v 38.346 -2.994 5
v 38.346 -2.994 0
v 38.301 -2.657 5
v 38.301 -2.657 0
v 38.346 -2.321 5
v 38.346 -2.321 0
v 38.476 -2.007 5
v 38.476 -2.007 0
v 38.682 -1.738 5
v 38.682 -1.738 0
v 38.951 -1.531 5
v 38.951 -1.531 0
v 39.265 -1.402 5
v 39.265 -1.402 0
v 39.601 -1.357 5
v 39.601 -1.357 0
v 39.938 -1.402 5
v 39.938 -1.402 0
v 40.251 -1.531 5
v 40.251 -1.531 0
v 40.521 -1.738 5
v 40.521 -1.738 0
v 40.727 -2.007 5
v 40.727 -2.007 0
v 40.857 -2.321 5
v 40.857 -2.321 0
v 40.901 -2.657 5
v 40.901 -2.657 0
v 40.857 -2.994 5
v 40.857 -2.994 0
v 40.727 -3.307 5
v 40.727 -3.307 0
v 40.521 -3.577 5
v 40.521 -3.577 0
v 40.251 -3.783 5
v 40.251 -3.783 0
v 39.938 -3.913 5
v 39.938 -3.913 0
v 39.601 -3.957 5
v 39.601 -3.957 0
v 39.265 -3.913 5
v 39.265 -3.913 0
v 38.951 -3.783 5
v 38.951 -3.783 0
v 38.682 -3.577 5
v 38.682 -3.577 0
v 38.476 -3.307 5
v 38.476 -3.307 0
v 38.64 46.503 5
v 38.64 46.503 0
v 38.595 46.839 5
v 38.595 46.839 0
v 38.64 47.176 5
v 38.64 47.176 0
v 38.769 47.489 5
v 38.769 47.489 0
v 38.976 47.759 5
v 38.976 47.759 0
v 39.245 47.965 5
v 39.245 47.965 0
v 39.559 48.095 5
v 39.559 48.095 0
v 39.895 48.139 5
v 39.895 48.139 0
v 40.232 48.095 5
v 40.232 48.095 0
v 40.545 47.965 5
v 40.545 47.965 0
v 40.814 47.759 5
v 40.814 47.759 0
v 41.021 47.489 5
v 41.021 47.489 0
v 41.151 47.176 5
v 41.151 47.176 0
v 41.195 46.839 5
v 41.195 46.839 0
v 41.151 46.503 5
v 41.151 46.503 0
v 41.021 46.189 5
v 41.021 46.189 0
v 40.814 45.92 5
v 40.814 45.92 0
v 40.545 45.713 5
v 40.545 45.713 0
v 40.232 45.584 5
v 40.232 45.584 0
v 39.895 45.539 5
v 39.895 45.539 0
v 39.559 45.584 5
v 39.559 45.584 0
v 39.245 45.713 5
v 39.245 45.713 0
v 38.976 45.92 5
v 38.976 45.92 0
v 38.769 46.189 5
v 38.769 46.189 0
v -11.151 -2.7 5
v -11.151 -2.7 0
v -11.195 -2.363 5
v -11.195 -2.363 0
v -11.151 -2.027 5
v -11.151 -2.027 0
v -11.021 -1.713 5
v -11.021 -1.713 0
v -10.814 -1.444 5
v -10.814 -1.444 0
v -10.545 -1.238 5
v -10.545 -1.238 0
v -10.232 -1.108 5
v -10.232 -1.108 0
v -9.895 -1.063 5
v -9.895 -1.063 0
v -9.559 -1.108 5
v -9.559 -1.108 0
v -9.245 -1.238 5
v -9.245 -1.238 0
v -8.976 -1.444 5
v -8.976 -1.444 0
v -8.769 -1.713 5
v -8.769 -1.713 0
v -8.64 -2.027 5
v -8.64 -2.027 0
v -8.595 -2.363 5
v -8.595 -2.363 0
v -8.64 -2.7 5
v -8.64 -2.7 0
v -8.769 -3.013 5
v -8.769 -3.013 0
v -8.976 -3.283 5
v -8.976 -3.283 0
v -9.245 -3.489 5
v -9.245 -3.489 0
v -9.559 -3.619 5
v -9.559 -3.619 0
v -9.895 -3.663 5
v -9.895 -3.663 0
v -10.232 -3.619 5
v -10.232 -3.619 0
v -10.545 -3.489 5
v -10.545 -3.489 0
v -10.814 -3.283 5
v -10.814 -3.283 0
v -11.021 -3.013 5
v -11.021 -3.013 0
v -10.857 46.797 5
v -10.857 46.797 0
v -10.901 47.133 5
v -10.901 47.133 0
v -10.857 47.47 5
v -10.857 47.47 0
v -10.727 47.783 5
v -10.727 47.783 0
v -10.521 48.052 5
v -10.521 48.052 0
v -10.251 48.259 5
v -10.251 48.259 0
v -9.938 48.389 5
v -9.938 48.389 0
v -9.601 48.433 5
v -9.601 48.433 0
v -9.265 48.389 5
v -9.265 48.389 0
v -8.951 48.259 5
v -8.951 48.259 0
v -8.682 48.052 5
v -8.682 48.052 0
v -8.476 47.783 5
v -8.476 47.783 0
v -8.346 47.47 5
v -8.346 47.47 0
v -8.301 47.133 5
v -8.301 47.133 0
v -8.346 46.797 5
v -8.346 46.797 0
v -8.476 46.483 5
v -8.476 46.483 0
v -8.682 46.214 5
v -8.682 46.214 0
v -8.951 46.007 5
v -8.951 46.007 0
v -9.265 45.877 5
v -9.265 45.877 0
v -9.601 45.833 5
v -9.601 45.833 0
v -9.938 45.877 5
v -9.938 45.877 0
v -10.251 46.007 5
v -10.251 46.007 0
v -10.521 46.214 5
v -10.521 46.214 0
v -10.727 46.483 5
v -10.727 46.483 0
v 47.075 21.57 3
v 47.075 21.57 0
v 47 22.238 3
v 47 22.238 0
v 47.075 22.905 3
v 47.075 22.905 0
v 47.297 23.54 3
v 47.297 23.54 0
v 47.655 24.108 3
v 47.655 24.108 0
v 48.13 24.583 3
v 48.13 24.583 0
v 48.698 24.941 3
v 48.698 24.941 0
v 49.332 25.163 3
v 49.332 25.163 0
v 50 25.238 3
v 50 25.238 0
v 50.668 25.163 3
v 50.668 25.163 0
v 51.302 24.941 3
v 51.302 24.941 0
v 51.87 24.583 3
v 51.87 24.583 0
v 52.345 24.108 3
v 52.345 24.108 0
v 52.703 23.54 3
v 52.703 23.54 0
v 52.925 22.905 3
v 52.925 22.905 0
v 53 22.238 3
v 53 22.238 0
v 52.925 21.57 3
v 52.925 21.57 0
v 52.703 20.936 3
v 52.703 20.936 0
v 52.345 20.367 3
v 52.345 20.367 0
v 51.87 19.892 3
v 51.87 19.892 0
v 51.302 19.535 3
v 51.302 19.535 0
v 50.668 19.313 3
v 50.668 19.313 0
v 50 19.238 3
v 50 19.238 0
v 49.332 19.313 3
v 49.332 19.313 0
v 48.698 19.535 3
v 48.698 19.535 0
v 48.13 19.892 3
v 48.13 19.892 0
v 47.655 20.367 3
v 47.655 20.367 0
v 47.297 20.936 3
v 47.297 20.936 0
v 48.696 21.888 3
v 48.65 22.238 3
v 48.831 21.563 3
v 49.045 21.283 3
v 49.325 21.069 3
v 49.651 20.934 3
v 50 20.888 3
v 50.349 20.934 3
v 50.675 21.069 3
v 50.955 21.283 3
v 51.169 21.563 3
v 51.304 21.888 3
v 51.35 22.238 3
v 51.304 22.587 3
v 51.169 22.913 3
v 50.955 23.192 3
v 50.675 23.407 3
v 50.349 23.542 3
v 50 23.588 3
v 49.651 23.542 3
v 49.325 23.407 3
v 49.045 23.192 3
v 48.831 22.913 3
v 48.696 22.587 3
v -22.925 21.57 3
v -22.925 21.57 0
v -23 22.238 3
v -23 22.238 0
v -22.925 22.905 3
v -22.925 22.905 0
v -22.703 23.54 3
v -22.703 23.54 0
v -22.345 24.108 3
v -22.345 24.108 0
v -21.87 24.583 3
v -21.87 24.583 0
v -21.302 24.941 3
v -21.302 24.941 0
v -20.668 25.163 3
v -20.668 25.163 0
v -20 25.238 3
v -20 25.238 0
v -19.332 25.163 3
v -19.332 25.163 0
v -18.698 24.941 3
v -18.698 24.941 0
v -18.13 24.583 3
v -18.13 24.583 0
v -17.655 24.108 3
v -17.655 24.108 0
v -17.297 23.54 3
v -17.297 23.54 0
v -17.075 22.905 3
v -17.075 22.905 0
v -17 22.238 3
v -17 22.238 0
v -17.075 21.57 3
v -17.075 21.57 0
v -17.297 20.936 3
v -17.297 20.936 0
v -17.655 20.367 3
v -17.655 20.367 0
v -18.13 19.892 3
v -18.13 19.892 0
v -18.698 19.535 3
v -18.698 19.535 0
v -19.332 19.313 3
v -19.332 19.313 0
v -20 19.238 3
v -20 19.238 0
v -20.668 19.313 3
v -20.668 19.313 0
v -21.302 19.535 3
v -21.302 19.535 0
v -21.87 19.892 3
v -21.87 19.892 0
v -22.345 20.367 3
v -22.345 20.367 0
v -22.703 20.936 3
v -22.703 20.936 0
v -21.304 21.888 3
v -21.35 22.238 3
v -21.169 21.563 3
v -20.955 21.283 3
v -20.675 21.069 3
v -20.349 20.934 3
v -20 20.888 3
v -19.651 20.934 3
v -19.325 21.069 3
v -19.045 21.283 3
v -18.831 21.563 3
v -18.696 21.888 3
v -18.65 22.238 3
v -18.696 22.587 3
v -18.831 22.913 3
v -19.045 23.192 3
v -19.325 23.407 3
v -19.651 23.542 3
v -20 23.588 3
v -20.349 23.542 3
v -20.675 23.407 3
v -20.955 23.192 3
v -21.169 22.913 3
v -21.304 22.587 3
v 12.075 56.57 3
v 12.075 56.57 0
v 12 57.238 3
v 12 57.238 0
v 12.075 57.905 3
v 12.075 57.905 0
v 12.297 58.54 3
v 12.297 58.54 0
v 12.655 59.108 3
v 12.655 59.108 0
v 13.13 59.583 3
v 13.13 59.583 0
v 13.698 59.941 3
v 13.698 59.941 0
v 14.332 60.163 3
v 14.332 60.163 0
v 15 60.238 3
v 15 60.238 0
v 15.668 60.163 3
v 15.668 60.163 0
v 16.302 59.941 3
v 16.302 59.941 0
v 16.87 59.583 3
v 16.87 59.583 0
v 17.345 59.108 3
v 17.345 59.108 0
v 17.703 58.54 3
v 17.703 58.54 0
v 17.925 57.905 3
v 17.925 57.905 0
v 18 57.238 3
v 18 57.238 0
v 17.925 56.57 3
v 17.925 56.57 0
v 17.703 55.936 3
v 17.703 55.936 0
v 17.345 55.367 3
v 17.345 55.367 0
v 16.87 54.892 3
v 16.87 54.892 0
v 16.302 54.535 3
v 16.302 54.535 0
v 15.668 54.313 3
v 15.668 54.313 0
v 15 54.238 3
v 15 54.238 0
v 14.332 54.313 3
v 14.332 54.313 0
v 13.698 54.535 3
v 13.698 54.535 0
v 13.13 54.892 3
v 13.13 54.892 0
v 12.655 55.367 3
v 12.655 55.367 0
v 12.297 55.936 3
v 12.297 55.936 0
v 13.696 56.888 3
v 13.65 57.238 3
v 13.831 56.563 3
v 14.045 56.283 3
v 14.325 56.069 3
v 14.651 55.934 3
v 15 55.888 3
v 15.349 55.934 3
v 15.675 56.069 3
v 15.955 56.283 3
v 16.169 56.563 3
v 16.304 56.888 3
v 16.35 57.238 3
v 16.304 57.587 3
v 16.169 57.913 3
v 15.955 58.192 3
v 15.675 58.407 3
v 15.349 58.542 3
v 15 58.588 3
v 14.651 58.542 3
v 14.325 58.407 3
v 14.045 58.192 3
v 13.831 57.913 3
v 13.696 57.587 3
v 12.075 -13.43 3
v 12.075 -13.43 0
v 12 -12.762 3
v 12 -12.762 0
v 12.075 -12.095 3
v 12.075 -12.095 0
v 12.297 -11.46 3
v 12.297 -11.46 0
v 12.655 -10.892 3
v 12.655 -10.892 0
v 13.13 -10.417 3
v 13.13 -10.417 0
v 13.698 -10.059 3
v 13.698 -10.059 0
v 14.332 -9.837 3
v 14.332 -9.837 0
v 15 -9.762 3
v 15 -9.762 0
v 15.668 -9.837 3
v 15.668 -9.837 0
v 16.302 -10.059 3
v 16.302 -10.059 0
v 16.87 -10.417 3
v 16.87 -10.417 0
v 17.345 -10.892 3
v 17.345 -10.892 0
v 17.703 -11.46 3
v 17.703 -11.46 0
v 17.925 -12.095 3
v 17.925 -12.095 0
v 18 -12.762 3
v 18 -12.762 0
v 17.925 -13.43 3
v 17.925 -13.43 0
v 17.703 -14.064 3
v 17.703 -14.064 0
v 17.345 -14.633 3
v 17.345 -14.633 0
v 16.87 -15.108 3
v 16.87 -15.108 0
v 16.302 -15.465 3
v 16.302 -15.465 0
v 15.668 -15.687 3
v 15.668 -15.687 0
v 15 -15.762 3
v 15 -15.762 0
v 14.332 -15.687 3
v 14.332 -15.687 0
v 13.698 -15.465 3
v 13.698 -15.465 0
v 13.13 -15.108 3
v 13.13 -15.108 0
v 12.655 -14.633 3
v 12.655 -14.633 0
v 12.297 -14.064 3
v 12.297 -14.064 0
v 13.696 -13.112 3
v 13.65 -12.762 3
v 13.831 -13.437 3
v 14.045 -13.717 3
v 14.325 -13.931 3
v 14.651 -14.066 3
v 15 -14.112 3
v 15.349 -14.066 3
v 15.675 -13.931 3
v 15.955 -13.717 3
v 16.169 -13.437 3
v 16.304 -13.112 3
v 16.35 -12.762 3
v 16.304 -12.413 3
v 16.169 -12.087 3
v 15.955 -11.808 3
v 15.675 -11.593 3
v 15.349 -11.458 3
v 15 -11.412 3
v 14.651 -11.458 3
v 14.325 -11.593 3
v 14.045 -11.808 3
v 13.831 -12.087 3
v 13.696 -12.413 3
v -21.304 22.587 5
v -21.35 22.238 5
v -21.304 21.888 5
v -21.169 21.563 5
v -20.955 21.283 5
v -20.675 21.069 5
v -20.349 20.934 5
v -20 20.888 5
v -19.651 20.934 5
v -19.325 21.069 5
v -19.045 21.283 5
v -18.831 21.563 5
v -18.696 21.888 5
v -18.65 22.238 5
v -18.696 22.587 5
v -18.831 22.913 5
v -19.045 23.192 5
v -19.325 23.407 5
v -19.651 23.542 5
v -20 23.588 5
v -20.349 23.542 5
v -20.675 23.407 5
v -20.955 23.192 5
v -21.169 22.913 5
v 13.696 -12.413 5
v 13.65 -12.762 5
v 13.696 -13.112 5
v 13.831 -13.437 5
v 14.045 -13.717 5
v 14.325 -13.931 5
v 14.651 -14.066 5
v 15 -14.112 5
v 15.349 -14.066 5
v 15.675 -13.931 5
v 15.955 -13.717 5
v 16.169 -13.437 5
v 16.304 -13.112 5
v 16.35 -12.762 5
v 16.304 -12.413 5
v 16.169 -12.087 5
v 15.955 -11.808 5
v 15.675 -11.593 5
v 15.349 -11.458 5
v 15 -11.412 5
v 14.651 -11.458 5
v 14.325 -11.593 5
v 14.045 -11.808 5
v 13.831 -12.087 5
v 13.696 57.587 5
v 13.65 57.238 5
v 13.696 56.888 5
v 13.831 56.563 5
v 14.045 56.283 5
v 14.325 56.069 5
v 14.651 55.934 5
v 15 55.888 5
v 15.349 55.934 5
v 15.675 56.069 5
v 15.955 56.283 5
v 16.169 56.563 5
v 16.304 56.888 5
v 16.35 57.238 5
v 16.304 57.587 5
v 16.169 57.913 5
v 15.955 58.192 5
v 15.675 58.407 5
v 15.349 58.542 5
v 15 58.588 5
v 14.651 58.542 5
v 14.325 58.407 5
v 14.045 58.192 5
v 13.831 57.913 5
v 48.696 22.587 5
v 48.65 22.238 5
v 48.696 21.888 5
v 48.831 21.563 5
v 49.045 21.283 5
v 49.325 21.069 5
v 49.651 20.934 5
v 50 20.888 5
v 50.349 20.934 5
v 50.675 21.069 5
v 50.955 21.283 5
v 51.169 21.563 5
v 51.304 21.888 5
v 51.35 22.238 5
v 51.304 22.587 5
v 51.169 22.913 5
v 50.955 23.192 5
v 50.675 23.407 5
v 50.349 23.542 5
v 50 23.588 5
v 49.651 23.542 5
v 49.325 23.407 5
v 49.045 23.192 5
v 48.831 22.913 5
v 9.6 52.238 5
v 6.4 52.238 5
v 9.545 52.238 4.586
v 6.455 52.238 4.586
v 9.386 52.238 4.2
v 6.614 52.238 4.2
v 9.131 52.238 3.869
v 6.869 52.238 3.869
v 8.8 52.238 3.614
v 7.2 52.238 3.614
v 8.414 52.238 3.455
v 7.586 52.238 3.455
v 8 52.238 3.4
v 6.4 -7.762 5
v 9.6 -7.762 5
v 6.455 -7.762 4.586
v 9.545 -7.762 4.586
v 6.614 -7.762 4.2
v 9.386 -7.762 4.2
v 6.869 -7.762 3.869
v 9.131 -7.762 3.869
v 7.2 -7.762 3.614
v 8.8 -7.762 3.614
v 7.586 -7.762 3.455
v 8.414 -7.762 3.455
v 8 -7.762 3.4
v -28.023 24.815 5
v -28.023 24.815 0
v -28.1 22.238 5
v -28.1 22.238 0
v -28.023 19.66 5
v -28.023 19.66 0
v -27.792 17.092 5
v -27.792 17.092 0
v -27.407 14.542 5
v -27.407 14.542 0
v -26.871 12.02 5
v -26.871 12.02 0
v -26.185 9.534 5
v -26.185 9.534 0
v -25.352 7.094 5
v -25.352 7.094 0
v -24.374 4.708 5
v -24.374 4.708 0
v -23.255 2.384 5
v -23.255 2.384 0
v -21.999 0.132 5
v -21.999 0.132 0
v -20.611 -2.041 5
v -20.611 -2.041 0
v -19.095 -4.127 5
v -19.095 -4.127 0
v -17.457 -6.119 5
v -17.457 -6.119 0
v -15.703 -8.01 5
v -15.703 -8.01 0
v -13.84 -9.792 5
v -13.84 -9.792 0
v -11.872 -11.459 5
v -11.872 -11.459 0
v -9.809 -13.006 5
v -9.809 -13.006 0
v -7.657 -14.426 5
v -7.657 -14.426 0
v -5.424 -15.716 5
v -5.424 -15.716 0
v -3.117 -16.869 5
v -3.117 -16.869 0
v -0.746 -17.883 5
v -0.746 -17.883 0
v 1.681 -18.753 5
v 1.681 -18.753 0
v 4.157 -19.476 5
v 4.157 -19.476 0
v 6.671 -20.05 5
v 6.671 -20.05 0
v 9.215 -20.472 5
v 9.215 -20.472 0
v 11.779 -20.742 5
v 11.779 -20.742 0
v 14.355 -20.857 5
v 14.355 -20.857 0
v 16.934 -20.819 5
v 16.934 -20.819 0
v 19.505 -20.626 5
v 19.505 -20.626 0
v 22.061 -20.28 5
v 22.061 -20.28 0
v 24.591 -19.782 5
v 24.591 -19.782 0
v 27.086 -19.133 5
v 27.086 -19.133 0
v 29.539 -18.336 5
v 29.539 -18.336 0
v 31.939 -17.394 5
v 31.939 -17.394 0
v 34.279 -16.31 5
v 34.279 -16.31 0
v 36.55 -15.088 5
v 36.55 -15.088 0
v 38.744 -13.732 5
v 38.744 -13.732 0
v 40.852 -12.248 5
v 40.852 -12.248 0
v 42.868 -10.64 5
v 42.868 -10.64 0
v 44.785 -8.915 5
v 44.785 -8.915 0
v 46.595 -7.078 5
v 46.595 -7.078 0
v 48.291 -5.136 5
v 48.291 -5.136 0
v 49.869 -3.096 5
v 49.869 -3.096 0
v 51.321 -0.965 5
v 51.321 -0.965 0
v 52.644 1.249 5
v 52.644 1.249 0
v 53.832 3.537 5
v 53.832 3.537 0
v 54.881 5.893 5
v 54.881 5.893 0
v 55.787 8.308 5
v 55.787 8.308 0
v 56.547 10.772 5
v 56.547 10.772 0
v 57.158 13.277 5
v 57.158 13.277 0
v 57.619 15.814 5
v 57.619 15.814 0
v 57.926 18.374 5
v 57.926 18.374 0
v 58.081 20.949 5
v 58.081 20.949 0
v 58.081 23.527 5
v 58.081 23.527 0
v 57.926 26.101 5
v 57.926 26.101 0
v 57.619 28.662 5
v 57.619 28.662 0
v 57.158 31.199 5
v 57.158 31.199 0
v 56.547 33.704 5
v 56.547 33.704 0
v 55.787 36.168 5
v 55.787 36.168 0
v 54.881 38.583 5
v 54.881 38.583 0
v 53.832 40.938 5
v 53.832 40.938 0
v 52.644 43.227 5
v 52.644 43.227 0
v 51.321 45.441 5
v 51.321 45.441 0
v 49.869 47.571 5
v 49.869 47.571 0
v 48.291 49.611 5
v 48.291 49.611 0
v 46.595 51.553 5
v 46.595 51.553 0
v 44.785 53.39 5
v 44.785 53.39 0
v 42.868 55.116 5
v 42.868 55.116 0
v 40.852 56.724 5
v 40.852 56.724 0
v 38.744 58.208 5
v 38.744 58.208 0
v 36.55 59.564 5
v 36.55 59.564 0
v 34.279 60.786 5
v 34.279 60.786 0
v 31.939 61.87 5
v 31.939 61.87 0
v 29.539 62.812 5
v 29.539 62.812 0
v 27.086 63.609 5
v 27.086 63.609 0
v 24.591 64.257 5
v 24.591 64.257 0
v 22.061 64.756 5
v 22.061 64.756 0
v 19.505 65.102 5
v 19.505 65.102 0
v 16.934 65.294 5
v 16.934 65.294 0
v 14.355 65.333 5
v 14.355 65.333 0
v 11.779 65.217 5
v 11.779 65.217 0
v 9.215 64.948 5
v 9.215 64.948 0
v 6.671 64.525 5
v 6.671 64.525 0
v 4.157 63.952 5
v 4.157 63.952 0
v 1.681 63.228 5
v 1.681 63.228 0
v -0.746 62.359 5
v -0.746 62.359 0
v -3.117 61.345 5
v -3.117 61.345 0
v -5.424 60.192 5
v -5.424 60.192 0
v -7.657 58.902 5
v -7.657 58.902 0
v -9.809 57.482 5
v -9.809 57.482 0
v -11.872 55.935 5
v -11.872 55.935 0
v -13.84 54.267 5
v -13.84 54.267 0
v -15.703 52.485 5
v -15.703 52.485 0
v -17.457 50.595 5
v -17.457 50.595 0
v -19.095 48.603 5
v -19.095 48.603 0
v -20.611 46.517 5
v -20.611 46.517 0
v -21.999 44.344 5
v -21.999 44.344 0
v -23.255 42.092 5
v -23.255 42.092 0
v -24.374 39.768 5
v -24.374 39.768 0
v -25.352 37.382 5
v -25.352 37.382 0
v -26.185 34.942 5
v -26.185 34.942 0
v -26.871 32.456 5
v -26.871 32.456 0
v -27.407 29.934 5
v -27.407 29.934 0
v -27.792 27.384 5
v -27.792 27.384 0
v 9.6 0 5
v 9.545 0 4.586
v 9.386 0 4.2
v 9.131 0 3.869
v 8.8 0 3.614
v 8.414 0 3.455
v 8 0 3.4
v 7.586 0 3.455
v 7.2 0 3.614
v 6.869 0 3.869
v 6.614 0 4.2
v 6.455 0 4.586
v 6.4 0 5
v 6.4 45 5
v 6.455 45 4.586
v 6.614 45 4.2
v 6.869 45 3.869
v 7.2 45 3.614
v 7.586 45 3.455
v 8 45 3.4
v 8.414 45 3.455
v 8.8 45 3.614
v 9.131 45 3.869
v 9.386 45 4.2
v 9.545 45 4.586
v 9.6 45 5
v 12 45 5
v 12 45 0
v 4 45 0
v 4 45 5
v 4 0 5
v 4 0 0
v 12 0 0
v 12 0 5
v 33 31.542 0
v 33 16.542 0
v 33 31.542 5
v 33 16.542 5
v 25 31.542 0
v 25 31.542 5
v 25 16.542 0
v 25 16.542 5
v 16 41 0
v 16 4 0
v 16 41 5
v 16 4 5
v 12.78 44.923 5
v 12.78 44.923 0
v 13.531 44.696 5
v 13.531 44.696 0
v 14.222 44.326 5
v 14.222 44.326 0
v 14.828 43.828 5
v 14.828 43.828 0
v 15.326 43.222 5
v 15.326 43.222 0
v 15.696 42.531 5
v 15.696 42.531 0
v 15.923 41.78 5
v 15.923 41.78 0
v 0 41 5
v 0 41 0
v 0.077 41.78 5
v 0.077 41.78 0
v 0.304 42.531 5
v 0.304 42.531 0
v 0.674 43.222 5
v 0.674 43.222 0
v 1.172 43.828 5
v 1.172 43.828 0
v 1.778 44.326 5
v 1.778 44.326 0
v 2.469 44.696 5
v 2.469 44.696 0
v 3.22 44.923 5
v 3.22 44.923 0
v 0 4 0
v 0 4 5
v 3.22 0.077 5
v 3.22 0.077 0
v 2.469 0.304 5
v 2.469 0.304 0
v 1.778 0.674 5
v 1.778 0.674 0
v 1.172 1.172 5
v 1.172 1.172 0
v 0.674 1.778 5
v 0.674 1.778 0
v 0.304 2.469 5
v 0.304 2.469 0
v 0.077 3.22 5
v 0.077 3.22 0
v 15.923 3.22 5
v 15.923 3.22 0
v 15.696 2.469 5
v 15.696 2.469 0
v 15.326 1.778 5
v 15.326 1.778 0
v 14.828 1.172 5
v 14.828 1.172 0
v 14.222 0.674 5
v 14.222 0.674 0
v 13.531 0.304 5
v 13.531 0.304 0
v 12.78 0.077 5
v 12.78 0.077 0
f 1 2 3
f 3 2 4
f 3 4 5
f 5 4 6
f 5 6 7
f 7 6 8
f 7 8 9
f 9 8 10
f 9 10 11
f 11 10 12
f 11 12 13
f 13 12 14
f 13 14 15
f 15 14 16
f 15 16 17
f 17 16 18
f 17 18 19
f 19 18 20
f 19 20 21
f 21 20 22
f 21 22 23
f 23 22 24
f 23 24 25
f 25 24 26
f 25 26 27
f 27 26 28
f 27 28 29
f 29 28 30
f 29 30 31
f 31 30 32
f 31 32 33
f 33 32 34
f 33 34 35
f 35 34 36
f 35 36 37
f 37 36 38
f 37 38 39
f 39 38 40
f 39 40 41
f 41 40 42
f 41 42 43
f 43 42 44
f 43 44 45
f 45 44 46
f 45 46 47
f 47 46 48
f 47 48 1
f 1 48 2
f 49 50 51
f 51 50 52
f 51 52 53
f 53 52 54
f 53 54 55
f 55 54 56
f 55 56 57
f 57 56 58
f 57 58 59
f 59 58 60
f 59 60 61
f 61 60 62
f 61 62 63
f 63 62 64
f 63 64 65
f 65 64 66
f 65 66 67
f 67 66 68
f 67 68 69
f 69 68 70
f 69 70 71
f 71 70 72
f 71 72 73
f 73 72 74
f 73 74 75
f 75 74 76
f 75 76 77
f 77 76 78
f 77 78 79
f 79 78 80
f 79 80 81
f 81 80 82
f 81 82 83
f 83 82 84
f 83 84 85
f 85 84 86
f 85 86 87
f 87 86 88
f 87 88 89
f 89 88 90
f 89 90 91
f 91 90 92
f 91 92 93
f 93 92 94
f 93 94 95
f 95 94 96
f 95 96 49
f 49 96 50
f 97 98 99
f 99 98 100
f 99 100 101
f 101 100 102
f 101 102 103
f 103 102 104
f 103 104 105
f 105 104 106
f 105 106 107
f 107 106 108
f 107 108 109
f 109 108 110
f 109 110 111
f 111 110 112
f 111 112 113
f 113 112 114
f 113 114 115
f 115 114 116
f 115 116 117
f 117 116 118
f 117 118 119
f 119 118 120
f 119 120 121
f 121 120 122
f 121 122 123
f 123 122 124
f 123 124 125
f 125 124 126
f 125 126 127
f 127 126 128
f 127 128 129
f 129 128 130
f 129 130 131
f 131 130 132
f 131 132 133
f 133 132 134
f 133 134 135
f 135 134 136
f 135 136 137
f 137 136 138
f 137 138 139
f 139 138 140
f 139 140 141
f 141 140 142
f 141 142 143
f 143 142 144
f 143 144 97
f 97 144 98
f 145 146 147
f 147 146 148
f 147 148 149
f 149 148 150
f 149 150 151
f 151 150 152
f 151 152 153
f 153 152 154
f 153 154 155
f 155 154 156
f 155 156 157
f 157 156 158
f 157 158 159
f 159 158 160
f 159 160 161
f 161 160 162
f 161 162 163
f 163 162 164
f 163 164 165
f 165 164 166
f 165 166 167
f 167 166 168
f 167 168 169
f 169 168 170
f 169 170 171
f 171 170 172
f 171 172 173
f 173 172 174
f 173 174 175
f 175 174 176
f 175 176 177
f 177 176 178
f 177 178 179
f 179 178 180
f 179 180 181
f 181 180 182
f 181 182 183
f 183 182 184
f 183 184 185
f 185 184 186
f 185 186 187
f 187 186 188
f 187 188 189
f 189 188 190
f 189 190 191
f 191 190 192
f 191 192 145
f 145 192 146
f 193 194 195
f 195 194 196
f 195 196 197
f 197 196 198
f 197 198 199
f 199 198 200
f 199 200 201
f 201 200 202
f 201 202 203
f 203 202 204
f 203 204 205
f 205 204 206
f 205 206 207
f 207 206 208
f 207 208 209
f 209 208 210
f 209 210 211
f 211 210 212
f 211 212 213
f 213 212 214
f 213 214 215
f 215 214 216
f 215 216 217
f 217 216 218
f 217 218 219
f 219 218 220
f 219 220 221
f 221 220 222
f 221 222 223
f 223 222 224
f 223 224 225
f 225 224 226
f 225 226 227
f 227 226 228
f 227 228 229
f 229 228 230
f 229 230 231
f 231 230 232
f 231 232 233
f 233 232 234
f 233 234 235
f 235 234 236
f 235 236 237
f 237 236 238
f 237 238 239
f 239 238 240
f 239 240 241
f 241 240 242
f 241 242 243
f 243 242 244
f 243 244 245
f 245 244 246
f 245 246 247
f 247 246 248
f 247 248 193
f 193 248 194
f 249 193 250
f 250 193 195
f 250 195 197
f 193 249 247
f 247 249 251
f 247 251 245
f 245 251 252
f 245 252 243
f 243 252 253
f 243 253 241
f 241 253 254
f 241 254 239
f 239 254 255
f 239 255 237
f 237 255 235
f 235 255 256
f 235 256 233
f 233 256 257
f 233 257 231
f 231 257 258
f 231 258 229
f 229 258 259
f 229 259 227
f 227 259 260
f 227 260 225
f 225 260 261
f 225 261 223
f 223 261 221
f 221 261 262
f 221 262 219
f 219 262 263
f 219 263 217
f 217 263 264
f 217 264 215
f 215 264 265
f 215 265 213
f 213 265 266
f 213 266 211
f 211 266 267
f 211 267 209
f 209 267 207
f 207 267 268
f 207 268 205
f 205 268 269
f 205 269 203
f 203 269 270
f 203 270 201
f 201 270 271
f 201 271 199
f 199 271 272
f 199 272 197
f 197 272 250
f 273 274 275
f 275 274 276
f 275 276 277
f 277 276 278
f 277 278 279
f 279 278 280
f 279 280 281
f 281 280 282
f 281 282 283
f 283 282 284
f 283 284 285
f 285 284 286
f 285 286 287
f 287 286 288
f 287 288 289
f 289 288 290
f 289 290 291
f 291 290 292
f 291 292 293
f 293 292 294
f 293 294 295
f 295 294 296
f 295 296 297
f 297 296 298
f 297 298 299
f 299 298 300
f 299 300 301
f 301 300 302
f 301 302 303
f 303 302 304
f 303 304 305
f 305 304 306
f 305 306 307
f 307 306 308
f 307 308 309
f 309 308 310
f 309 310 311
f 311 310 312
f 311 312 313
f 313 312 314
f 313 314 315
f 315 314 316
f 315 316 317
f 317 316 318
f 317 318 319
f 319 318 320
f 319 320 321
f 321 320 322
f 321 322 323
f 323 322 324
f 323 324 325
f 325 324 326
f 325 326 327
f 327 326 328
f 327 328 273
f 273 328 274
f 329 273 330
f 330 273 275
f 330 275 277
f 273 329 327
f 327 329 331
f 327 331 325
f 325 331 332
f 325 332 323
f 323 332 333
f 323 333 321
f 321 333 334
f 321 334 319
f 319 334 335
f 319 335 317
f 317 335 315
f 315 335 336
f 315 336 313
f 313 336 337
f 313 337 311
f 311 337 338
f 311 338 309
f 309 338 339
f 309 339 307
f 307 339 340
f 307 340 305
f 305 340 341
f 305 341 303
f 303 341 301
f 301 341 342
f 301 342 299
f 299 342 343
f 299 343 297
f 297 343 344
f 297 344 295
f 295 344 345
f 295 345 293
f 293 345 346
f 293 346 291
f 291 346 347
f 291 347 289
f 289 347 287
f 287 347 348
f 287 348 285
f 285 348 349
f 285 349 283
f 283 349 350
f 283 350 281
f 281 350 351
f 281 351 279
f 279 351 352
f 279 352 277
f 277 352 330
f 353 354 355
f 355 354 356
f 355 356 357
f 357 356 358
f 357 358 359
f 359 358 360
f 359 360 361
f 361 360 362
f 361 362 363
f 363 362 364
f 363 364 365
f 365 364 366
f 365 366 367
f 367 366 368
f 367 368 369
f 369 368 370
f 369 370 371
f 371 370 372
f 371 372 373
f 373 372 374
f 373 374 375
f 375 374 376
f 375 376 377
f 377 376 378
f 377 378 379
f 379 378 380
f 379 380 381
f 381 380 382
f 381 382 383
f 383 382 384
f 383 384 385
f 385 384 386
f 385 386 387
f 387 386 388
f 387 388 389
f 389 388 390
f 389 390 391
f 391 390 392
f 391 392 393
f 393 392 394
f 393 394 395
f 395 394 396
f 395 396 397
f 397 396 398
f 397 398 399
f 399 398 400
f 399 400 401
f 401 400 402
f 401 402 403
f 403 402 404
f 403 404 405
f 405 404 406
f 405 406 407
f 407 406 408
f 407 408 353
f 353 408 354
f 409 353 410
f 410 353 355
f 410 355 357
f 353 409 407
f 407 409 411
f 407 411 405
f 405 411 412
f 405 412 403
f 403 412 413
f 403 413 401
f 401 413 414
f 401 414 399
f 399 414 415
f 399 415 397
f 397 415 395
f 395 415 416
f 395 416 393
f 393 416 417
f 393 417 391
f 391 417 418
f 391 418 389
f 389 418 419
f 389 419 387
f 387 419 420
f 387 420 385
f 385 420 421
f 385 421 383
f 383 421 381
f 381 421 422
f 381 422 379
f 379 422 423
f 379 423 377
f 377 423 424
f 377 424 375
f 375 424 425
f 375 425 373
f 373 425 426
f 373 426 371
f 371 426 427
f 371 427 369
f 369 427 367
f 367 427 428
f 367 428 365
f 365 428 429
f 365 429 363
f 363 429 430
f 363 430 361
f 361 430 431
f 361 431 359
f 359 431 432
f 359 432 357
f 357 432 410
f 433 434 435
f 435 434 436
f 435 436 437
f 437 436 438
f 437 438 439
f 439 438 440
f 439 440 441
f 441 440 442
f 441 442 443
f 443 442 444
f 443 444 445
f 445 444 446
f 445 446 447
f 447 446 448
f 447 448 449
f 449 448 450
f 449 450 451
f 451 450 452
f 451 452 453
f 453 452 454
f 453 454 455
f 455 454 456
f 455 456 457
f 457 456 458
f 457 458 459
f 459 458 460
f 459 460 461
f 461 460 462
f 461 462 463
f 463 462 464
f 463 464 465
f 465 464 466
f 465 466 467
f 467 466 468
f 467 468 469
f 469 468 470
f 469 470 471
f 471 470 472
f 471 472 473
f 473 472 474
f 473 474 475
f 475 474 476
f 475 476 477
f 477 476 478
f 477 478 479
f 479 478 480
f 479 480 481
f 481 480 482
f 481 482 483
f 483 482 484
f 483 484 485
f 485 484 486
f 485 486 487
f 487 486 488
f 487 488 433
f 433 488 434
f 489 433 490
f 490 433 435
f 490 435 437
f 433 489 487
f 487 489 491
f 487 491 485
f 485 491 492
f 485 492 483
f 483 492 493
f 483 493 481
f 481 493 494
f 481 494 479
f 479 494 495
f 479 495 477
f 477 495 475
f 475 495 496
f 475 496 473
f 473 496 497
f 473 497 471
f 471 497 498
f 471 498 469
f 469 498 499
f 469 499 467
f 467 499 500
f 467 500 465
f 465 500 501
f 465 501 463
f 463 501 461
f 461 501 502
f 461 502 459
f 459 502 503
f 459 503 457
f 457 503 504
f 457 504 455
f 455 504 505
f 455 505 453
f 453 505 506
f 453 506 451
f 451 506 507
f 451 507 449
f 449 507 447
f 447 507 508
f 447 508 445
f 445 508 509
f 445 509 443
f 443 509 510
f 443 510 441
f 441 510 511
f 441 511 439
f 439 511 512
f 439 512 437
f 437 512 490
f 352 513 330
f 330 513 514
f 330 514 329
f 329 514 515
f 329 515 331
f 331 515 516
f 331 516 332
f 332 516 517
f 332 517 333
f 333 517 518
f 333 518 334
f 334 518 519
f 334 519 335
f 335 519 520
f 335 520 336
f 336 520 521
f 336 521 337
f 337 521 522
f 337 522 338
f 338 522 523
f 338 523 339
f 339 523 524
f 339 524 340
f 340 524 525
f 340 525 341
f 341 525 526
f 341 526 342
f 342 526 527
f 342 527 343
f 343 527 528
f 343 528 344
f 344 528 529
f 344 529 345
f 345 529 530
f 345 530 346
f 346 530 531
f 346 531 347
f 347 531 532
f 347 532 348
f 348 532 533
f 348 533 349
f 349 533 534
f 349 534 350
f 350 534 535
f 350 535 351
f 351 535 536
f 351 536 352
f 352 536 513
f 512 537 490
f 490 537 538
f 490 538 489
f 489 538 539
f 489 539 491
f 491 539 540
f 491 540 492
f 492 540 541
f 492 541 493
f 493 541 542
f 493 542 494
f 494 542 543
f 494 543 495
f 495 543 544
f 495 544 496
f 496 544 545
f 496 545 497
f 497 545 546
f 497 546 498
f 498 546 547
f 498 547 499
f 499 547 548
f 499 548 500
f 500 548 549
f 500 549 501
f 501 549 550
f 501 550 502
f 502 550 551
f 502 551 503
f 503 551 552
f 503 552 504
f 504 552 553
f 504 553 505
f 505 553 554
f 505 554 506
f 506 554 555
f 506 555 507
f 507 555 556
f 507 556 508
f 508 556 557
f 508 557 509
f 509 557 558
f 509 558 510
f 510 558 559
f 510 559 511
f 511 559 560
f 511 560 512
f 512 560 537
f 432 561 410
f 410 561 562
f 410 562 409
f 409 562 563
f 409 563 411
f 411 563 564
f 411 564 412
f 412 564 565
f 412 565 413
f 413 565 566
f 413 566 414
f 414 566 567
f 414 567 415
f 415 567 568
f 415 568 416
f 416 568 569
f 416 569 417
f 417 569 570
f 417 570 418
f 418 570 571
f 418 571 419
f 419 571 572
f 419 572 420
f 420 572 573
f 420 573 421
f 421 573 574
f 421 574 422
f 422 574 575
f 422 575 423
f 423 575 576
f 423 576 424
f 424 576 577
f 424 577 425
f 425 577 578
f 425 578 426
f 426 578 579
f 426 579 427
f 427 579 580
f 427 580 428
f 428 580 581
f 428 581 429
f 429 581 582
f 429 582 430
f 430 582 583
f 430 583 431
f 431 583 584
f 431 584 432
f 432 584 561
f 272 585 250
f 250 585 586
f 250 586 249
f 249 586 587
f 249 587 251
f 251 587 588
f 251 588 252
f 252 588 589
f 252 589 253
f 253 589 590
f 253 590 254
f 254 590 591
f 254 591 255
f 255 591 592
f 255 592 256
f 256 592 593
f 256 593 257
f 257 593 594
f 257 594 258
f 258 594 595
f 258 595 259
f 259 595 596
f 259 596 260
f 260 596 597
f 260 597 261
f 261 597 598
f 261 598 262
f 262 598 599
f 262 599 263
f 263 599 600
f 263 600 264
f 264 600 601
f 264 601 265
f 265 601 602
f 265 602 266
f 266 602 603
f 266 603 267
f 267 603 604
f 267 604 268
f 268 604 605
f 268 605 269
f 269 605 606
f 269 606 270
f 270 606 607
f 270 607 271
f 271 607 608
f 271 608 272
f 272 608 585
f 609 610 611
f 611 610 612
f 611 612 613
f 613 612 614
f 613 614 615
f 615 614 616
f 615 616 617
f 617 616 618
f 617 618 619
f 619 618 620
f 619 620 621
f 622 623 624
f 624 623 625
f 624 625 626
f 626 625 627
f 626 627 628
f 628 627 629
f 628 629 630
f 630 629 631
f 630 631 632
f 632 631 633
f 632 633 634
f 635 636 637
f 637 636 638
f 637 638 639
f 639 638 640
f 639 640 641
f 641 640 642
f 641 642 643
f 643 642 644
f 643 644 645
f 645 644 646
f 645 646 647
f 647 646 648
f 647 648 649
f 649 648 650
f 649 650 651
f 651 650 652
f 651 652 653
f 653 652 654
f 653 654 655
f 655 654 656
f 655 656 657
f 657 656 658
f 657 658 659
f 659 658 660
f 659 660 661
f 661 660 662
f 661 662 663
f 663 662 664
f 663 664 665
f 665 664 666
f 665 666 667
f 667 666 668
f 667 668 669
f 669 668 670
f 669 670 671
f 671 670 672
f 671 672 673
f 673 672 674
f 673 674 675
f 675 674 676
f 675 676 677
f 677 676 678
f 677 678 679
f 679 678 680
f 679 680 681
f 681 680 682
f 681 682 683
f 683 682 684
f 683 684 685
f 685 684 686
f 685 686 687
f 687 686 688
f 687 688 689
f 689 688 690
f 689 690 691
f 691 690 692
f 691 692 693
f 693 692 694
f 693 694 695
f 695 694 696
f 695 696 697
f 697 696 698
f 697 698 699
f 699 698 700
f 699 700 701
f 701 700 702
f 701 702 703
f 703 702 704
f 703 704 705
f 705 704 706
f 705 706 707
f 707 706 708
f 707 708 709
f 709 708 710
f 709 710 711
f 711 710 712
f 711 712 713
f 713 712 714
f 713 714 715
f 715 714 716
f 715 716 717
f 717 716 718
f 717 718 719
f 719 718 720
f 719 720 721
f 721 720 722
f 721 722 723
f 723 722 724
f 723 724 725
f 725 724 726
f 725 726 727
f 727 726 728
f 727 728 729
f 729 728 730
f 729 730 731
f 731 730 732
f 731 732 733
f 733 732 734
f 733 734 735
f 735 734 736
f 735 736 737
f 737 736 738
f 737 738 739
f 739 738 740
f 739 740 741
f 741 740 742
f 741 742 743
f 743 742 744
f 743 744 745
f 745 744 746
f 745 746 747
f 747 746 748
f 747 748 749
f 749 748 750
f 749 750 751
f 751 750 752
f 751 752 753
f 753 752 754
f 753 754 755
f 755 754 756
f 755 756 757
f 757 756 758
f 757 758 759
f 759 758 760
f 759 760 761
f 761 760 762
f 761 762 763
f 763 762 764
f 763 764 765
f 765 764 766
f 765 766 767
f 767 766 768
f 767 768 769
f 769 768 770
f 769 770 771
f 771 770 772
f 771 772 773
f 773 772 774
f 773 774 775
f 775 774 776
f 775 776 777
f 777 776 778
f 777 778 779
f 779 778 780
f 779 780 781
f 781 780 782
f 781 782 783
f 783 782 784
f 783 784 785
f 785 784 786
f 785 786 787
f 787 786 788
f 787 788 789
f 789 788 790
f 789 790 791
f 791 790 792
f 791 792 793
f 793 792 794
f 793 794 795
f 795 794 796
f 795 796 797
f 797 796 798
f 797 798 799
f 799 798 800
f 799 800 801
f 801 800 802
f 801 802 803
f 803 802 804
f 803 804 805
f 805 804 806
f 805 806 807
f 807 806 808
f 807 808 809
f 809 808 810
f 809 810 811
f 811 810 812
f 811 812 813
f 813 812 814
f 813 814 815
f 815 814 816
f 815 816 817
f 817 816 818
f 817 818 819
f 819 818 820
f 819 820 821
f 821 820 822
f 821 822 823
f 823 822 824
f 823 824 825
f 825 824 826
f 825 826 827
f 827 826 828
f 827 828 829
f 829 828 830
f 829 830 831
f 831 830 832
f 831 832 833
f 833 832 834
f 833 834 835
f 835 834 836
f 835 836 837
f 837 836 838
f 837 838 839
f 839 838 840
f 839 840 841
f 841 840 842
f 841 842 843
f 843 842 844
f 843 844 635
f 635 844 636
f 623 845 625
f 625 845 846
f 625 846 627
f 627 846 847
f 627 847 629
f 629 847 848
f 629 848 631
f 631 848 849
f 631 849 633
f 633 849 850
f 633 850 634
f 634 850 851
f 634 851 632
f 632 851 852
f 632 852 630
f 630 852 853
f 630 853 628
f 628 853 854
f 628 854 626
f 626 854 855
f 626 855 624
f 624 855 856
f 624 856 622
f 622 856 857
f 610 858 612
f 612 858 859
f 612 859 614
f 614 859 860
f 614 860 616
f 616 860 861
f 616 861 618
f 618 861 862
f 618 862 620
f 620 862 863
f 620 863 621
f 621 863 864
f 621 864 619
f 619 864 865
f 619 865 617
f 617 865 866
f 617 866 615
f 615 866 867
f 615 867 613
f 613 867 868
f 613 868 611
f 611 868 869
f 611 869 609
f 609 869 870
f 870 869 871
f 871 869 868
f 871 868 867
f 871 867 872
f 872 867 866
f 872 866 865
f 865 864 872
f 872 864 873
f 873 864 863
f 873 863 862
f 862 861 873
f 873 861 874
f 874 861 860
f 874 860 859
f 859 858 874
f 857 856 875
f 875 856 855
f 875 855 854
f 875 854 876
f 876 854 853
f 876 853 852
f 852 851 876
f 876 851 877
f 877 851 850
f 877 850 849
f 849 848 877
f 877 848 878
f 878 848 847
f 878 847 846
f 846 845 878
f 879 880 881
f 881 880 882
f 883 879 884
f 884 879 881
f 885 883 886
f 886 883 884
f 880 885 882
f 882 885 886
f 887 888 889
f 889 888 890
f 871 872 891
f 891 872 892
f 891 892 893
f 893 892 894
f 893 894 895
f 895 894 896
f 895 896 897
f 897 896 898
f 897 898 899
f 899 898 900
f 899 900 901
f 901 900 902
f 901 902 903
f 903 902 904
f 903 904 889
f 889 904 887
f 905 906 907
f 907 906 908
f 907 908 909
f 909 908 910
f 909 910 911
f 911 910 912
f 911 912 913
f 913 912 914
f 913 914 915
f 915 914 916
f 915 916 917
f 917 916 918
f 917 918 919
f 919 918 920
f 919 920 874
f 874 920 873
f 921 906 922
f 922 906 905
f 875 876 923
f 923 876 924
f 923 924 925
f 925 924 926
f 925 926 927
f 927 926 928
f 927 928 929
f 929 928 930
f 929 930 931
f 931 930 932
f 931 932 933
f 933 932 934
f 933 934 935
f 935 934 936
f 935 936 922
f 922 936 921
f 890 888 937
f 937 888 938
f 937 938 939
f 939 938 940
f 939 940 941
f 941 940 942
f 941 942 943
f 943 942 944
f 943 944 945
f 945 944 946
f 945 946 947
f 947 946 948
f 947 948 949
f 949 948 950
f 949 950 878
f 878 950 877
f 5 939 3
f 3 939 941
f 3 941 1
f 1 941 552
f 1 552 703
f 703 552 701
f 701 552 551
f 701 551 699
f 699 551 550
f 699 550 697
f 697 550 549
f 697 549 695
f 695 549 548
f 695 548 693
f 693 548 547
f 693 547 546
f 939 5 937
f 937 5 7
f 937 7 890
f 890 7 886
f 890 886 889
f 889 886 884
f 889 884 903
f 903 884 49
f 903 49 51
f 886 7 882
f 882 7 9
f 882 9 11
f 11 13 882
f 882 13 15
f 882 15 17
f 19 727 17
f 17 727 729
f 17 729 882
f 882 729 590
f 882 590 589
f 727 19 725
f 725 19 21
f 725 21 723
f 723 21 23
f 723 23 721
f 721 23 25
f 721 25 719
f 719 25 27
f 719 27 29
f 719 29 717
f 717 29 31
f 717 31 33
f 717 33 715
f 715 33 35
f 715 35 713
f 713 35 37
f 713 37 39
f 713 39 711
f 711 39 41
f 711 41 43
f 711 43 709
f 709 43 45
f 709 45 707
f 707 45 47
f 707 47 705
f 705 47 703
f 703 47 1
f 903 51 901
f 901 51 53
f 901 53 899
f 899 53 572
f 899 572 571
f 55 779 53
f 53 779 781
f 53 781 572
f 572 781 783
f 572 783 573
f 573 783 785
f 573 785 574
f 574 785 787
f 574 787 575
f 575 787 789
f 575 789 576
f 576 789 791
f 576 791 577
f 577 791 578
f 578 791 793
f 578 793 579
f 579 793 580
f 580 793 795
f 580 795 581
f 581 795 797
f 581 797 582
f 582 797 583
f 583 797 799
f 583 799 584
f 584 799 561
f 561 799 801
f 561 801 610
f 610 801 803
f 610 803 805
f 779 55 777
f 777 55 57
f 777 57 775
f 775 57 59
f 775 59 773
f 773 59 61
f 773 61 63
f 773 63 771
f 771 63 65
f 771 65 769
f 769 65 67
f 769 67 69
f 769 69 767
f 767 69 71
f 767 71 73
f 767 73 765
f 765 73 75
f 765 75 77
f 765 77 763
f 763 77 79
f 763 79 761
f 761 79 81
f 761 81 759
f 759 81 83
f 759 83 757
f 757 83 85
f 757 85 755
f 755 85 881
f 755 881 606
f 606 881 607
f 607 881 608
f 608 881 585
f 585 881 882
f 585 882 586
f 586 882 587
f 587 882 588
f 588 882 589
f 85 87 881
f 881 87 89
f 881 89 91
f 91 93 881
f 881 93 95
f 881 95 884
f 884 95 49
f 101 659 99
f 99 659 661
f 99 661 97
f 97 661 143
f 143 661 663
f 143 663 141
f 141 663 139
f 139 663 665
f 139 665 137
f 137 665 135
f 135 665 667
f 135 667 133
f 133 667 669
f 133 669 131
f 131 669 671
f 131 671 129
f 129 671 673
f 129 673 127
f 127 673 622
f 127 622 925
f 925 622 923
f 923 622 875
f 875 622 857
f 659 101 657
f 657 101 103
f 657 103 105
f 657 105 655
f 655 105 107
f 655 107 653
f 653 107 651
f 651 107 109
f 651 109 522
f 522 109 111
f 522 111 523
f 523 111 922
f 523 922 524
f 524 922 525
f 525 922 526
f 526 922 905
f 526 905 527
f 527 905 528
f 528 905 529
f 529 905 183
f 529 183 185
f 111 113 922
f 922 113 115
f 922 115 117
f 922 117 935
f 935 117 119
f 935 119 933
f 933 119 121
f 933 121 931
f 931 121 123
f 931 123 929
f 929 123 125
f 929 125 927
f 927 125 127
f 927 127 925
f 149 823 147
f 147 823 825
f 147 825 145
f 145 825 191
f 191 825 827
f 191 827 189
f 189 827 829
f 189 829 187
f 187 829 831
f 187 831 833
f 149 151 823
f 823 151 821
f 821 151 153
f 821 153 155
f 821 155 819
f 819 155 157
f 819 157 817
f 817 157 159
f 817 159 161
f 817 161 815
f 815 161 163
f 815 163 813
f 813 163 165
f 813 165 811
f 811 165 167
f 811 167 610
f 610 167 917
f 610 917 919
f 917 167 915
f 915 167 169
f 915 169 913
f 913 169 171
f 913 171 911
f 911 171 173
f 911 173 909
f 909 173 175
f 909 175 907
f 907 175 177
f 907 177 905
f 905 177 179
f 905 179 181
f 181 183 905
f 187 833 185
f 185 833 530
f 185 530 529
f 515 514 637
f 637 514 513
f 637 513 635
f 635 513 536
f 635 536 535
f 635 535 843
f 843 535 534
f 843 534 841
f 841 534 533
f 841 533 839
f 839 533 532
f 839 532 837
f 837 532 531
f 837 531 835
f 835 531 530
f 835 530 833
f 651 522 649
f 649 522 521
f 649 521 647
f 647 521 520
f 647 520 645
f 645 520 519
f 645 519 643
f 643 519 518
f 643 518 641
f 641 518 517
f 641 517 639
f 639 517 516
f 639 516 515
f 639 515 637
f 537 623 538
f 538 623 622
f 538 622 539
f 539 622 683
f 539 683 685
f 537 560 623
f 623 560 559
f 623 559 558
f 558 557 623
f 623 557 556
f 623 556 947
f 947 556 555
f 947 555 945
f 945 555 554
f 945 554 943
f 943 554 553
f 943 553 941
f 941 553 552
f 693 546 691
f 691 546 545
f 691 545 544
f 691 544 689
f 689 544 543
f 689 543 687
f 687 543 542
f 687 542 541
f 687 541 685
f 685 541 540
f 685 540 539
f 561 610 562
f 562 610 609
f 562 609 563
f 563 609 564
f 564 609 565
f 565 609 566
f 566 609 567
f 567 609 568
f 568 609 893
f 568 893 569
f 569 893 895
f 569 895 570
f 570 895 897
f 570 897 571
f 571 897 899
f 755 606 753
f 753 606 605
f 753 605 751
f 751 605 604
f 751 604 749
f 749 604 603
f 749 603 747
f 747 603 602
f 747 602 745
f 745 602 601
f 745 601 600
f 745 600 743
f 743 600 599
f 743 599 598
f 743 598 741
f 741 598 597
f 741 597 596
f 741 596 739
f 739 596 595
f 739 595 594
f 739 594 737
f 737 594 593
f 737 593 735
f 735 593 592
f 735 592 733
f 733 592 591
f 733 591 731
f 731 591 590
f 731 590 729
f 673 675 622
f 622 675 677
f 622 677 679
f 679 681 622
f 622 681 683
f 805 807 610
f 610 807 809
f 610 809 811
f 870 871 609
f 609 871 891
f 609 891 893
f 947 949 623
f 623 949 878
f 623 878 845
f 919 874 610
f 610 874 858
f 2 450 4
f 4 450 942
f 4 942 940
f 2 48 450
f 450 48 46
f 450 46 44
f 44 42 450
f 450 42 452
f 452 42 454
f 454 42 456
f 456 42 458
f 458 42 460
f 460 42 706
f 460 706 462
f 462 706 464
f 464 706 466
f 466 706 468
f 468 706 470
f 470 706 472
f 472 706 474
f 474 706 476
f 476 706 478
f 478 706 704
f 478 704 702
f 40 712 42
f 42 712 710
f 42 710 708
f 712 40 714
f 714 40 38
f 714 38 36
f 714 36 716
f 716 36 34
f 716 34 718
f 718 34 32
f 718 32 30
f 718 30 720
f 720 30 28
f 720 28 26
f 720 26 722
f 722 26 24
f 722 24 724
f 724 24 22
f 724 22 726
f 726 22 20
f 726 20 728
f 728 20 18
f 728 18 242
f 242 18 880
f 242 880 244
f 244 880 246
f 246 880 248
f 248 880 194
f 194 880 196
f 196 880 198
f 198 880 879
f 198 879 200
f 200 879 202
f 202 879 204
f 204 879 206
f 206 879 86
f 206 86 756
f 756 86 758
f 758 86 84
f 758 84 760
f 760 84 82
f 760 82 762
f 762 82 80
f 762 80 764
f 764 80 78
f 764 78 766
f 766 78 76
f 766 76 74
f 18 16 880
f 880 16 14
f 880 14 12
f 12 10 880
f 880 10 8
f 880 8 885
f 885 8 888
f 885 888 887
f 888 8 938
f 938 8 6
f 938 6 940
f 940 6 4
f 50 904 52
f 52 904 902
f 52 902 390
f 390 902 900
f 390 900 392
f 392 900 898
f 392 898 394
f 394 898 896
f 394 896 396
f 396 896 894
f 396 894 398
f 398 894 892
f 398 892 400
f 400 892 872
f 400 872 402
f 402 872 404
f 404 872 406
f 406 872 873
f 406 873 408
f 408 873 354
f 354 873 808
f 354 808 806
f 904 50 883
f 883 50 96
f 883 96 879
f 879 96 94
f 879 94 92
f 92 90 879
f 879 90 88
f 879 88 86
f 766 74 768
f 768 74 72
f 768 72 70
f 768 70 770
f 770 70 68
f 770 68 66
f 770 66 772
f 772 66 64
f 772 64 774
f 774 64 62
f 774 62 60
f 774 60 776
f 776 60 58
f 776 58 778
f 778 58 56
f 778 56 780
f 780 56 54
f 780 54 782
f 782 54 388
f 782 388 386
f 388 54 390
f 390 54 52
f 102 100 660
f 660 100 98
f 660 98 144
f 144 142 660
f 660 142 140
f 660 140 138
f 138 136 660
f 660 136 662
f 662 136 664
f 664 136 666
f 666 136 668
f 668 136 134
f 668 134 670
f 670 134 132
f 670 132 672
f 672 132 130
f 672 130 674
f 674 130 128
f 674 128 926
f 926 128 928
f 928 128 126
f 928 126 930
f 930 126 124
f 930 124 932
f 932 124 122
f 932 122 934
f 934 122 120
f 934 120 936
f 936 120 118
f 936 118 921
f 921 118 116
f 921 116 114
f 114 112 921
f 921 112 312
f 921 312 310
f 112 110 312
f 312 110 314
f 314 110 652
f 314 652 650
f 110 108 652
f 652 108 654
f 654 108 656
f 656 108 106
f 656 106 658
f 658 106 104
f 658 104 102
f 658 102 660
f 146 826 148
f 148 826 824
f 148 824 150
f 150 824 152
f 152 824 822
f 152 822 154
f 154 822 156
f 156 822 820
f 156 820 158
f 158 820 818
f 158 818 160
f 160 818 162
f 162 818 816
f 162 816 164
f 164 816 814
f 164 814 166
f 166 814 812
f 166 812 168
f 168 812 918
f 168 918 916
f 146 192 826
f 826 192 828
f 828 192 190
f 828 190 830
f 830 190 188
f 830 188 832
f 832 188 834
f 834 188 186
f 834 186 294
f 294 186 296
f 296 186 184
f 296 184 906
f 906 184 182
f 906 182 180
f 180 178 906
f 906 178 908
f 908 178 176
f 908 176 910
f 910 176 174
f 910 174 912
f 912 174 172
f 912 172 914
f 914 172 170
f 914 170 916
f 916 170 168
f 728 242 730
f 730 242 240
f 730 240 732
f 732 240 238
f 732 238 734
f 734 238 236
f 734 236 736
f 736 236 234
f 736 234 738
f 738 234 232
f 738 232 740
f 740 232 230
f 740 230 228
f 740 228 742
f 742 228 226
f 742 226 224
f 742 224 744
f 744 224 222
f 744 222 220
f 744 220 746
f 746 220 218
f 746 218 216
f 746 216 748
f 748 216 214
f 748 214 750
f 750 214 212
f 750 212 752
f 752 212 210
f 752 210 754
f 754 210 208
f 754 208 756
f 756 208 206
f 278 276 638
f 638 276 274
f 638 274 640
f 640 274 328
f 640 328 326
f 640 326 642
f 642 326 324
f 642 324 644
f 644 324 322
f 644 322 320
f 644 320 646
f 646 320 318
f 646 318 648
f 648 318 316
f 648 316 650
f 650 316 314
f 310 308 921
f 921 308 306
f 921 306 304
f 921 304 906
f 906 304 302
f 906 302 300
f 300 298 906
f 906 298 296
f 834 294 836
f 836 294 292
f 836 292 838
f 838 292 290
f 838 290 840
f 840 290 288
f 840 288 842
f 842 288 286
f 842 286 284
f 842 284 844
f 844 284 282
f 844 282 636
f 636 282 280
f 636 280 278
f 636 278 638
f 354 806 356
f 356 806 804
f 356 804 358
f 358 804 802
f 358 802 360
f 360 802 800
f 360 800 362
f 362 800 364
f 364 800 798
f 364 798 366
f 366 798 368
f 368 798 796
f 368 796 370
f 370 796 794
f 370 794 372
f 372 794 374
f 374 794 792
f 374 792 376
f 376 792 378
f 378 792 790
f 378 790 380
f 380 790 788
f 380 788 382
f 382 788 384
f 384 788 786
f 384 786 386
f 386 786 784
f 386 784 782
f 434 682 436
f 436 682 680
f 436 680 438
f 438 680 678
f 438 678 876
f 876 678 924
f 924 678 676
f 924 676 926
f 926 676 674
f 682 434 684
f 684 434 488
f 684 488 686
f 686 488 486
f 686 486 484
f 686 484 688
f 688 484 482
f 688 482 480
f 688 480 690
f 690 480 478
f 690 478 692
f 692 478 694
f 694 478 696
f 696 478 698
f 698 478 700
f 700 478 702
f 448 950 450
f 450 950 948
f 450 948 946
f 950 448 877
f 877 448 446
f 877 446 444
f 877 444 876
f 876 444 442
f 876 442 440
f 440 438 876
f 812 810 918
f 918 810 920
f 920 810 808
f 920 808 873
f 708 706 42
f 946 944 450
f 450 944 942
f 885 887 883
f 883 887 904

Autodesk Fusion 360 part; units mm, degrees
sketch "草图6" plane through (0, 0, 0) normal (0, 0, 1) x (1, 0, 0)
  line L0 (4, 0) -> (12, 0)
  line L1 (16, 4) -> (16, 41)
  line L2 (12, 45) -> (4, 45)
  line L3 (0, 41) -> (0, 4)
  arc A0 (4, 45) -> (0, 41) centre (4, 41) ccw
  arc A1 (16, 41) -> (12, 45) centre (12, 41) ccw
  arc A2 (0, 4) -> (4, 0) centre (4, 4) ccw
  arc A3 (12, 0) -> (16, 4) centre (12, 4) ccw
  line L4 (25, 31.5418) -> (33, 31.5418)
  line L5 (33, 31.5418) -> (33, 16.5418)
  line L6 (33, 16.5418) -> (25, 16.5418)
  line L7 (25, 16.5418) -> (25, 31.5418)
  line L8 (-15, 52.2379) -> (45, 52.2379)
  line L9 (45, 52.2379) -> (45, -7.7621)
  line L10 (45, -7.7621) -> (-15, -7.7621)
  line L11 (-15, -7.7621) -> (-15, 52.2379)
  line L12 (45, -7.7621) -> (-15, 52.2379) construction
  line L13 (-15, -7.7621) -> (45, 52.2379) construction
  circle A4 centre (15, 22.2379) radius 43.1
  point P0 (16, 0)
  point P1 (0, 45)
  dimension "d37" = 4
  dimension "d38" = 4
  dimension "d39" = 4
  dimension "d40" = 4
  dimension "d41" = 45
  dimension "d42" = 16
  dimension "d43" = 8
  dimension "d44" = 15
  dimension "d45" = 60
  dimension "d55" = 60
  dimension "d56" = 86.2
extrude "拉伸5" add sketch "草图6" along normal blind 5 contours L8 L9 L10 L11
sketch "草图7" plane through (0, 45, 0) normal (0, -1, 0) x (1, 0, 0)
  line L0 (4, 0) -> (12, 0)
  line L1 (12, 0) -> (12, 5)
  line L2 (12, 5) -> (4, 5)
  line L3 (4, 5) -> (4, 0)
  circle A0 centre (8, 5) radius 1.6
  dimension "d48" = 3.2
extrude "拉伸6" cut sketch "草图7" along normal blind -10 and the other way blind -55 contours L2 A0 picked at (7.5748, 4.2826)
extrude "拉伸7" add sketch "草图6" along normal blind 5 contours A4
sketch "草图10" plane through (0, 0, 0) normal (0, 0, -1) x (1, 0, 0)
  circle A0 centre (15, -22.2379) radius 43.1
  arc A1 (16, -4) -> (12, 0) centre (12, -4) ccw
  line L0 (16, -4) -> (16, -41)
  arc A2 (12, -45) -> (16, -41) centre (12, -41) ccw
  line L1 (12, -45) -> (4, -45)
  arc A3 (0, -41) -> (4, -45) centre (4, -41) ccw
  line L2 (0, -41) -> (0, -4)
  arc A4 (4, 0) -> (0, -4) centre (4, -4) ccw
  line L3 (4, 0) -> (12, 0)
  line L4 (25, -16.5418) -> (33, -16.5418)
  line L5 (33, -16.5418) -> (33, -31.5418)
  line L6 (33, -31.5418) -> (25, -31.5418)
  line L7 (25, -31.5418) -> (25, -16.5418)
  circle A5 centre (15, -22.2379) radius 35
  circle A6 centre (15, -57.2379) radius 3
  circle A7 centre (15, -57.2379) radius 1.35
  circle A8 centre (50, -22.2379) radius 3
  circle A9 centre (50, -22.2379) radius 1.35
  circle A10 centre (15, 12.7621) radius 3
  circle A11 centre (15, 12.7621) radius 1.35
  circle A12 centre (-20, -22.2379) radius 3
  circle A13 centre (-20, -22.2379) radius 1.35
  line L8 (-7.4138, -45.6983) -> (-7.8923, -46.1073)
  line L9 (-6.756, -46.4514) -> (-7.1427, -46.7964)
  arc A14 (-6.756, -46.4514) -> (-7.4138, -45.6983) centre (-7.0889, -46.0783) ccw
  arc A15 (-7.8923, -46.1073) -> (-7.1427, -46.7964) centre (-8.8265, -47.8757) ccw
  arc A16 (38.8694, -45.1301) -> (39.5585, -44.3806) centre (40.6378, -46.0644) ccw
  line L10 (38.4604, -44.6517) -> (38.8694, -45.1301)
  arc A17 (39.2135, -43.9939) -> (38.4604, -44.6517) centre (38.8404, -44.3268) ccw
  line L11 (39.2135, -43.9939) -> (39.5585, -44.3806)
  arc A18 (37.8923, 1.6315) -> (37.1427, 2.3206) centre (38.8265, 3.3999) ccw
  line L12 (37.4138, 1.2225) -> (37.8923, 1.6315)
  arc A19 (36.756, 1.9756) -> (37.4138, 1.2225) centre (37.0889, 1.6025) ccw
  line L13 (36.756, 1.9756) -> (37.1427, 2.3206)
  arc A20 (-8.8694, 0.6544) -> (-9.5585, -0.0951) centre (-10.6378, 1.5886) ccw
  line L14 (-8.4604, 0.1759) -> (-8.8694, 0.6544)
  arc A21 (-9.2135, -0.4818) -> (-8.4604, 0.1759) centre (-8.8404, -0.149) ccw
  line L15 (-9.2135, -0.4818) -> (-9.5585, -0.0951)
  dimension "d59" = 70
  dimension "d60" = 6
  dimension "d61" = 2.7
  dimension "d63" = 360
  dimension "d68" = 4
  dimension "d69" = 1
  dimension "d71" = 360
extrude "拉伸8" cut sketch "草图10" against normal up to surface (5 mm away) contours A5 A9 | A5 A9 | A5 A11 | A5 A11 | A5 A7 | A5 A7 | A5 A13 | A5 A13
extrude "拉伸9" cut sketch "草图10" against normal blind 3 contours A5 A8 A9 | A5 A8 A9 | A5 A10 A11 | A5 A10 A11 | A5 A6 A7 | A5 A6 A7 | A5 A12 A13 | A5 A12 A13
sketch "草图11" plane through (0, 0, 0) normal (0, 0, -1) x (1, 0, 0)
  circle A0 centre (50, -22.2379) radius 3
  circle A1 centre (-20, -22.2379) radius 3
  circle A2 centre (15, -57.2379) radius 3
  circle A3 centre (15, 12.7621) radius 3
  circle A4 centre (15, -22.2379) radius 43.1
  arc A5 (16, -4) -> (12, 0) centre (12, -4) ccw
  line L0 (16, -4) -> (16, -41)
  arc A6 (12, -45) -> (16, -41) centre (12, -41) ccw
  line L1 (12, -45) -> (4, -45)
  arc A7 (0, -41) -> (4, -45) centre (4, -41) ccw
  line L2 (0, -41) -> (0, -4)
  arc A8 (4, 0) -> (0, -4) centre (4, -4) ccw
  line L3 (4, 0) -> (12, 0)
  line L4 (25, -16.5418) -> (33, -16.5418)
  line L5 (33, -16.5418) -> (33, -31.5418)
  line L6 (33, -31.5418) -> (25, -31.5418)
  line L7 (25, -31.5418) -> (25, -16.5418)
  circle A9 centre (15, -22.2379) radius 35
  circle A10 centre (39.6014, 2.6573) radius 1.3
  circle A11 centre (-9.8952, 2.3635) radius 1.3
  circle A12 centre (-9.6014, -47.1331) radius 1.3
  circle A13 centre (39.8952, -46.8393) radius 1.3
  dimension "d74" = 2.6
  dimension "d76" = 360
extrude "拉伸11" cut sketch "草图11" against normal blind 5 contours A9 A10 | A9 A10 | A9 A13 | A9 A13 | A9 A11 | A9 A11 | A9 A12 | A9 A12
